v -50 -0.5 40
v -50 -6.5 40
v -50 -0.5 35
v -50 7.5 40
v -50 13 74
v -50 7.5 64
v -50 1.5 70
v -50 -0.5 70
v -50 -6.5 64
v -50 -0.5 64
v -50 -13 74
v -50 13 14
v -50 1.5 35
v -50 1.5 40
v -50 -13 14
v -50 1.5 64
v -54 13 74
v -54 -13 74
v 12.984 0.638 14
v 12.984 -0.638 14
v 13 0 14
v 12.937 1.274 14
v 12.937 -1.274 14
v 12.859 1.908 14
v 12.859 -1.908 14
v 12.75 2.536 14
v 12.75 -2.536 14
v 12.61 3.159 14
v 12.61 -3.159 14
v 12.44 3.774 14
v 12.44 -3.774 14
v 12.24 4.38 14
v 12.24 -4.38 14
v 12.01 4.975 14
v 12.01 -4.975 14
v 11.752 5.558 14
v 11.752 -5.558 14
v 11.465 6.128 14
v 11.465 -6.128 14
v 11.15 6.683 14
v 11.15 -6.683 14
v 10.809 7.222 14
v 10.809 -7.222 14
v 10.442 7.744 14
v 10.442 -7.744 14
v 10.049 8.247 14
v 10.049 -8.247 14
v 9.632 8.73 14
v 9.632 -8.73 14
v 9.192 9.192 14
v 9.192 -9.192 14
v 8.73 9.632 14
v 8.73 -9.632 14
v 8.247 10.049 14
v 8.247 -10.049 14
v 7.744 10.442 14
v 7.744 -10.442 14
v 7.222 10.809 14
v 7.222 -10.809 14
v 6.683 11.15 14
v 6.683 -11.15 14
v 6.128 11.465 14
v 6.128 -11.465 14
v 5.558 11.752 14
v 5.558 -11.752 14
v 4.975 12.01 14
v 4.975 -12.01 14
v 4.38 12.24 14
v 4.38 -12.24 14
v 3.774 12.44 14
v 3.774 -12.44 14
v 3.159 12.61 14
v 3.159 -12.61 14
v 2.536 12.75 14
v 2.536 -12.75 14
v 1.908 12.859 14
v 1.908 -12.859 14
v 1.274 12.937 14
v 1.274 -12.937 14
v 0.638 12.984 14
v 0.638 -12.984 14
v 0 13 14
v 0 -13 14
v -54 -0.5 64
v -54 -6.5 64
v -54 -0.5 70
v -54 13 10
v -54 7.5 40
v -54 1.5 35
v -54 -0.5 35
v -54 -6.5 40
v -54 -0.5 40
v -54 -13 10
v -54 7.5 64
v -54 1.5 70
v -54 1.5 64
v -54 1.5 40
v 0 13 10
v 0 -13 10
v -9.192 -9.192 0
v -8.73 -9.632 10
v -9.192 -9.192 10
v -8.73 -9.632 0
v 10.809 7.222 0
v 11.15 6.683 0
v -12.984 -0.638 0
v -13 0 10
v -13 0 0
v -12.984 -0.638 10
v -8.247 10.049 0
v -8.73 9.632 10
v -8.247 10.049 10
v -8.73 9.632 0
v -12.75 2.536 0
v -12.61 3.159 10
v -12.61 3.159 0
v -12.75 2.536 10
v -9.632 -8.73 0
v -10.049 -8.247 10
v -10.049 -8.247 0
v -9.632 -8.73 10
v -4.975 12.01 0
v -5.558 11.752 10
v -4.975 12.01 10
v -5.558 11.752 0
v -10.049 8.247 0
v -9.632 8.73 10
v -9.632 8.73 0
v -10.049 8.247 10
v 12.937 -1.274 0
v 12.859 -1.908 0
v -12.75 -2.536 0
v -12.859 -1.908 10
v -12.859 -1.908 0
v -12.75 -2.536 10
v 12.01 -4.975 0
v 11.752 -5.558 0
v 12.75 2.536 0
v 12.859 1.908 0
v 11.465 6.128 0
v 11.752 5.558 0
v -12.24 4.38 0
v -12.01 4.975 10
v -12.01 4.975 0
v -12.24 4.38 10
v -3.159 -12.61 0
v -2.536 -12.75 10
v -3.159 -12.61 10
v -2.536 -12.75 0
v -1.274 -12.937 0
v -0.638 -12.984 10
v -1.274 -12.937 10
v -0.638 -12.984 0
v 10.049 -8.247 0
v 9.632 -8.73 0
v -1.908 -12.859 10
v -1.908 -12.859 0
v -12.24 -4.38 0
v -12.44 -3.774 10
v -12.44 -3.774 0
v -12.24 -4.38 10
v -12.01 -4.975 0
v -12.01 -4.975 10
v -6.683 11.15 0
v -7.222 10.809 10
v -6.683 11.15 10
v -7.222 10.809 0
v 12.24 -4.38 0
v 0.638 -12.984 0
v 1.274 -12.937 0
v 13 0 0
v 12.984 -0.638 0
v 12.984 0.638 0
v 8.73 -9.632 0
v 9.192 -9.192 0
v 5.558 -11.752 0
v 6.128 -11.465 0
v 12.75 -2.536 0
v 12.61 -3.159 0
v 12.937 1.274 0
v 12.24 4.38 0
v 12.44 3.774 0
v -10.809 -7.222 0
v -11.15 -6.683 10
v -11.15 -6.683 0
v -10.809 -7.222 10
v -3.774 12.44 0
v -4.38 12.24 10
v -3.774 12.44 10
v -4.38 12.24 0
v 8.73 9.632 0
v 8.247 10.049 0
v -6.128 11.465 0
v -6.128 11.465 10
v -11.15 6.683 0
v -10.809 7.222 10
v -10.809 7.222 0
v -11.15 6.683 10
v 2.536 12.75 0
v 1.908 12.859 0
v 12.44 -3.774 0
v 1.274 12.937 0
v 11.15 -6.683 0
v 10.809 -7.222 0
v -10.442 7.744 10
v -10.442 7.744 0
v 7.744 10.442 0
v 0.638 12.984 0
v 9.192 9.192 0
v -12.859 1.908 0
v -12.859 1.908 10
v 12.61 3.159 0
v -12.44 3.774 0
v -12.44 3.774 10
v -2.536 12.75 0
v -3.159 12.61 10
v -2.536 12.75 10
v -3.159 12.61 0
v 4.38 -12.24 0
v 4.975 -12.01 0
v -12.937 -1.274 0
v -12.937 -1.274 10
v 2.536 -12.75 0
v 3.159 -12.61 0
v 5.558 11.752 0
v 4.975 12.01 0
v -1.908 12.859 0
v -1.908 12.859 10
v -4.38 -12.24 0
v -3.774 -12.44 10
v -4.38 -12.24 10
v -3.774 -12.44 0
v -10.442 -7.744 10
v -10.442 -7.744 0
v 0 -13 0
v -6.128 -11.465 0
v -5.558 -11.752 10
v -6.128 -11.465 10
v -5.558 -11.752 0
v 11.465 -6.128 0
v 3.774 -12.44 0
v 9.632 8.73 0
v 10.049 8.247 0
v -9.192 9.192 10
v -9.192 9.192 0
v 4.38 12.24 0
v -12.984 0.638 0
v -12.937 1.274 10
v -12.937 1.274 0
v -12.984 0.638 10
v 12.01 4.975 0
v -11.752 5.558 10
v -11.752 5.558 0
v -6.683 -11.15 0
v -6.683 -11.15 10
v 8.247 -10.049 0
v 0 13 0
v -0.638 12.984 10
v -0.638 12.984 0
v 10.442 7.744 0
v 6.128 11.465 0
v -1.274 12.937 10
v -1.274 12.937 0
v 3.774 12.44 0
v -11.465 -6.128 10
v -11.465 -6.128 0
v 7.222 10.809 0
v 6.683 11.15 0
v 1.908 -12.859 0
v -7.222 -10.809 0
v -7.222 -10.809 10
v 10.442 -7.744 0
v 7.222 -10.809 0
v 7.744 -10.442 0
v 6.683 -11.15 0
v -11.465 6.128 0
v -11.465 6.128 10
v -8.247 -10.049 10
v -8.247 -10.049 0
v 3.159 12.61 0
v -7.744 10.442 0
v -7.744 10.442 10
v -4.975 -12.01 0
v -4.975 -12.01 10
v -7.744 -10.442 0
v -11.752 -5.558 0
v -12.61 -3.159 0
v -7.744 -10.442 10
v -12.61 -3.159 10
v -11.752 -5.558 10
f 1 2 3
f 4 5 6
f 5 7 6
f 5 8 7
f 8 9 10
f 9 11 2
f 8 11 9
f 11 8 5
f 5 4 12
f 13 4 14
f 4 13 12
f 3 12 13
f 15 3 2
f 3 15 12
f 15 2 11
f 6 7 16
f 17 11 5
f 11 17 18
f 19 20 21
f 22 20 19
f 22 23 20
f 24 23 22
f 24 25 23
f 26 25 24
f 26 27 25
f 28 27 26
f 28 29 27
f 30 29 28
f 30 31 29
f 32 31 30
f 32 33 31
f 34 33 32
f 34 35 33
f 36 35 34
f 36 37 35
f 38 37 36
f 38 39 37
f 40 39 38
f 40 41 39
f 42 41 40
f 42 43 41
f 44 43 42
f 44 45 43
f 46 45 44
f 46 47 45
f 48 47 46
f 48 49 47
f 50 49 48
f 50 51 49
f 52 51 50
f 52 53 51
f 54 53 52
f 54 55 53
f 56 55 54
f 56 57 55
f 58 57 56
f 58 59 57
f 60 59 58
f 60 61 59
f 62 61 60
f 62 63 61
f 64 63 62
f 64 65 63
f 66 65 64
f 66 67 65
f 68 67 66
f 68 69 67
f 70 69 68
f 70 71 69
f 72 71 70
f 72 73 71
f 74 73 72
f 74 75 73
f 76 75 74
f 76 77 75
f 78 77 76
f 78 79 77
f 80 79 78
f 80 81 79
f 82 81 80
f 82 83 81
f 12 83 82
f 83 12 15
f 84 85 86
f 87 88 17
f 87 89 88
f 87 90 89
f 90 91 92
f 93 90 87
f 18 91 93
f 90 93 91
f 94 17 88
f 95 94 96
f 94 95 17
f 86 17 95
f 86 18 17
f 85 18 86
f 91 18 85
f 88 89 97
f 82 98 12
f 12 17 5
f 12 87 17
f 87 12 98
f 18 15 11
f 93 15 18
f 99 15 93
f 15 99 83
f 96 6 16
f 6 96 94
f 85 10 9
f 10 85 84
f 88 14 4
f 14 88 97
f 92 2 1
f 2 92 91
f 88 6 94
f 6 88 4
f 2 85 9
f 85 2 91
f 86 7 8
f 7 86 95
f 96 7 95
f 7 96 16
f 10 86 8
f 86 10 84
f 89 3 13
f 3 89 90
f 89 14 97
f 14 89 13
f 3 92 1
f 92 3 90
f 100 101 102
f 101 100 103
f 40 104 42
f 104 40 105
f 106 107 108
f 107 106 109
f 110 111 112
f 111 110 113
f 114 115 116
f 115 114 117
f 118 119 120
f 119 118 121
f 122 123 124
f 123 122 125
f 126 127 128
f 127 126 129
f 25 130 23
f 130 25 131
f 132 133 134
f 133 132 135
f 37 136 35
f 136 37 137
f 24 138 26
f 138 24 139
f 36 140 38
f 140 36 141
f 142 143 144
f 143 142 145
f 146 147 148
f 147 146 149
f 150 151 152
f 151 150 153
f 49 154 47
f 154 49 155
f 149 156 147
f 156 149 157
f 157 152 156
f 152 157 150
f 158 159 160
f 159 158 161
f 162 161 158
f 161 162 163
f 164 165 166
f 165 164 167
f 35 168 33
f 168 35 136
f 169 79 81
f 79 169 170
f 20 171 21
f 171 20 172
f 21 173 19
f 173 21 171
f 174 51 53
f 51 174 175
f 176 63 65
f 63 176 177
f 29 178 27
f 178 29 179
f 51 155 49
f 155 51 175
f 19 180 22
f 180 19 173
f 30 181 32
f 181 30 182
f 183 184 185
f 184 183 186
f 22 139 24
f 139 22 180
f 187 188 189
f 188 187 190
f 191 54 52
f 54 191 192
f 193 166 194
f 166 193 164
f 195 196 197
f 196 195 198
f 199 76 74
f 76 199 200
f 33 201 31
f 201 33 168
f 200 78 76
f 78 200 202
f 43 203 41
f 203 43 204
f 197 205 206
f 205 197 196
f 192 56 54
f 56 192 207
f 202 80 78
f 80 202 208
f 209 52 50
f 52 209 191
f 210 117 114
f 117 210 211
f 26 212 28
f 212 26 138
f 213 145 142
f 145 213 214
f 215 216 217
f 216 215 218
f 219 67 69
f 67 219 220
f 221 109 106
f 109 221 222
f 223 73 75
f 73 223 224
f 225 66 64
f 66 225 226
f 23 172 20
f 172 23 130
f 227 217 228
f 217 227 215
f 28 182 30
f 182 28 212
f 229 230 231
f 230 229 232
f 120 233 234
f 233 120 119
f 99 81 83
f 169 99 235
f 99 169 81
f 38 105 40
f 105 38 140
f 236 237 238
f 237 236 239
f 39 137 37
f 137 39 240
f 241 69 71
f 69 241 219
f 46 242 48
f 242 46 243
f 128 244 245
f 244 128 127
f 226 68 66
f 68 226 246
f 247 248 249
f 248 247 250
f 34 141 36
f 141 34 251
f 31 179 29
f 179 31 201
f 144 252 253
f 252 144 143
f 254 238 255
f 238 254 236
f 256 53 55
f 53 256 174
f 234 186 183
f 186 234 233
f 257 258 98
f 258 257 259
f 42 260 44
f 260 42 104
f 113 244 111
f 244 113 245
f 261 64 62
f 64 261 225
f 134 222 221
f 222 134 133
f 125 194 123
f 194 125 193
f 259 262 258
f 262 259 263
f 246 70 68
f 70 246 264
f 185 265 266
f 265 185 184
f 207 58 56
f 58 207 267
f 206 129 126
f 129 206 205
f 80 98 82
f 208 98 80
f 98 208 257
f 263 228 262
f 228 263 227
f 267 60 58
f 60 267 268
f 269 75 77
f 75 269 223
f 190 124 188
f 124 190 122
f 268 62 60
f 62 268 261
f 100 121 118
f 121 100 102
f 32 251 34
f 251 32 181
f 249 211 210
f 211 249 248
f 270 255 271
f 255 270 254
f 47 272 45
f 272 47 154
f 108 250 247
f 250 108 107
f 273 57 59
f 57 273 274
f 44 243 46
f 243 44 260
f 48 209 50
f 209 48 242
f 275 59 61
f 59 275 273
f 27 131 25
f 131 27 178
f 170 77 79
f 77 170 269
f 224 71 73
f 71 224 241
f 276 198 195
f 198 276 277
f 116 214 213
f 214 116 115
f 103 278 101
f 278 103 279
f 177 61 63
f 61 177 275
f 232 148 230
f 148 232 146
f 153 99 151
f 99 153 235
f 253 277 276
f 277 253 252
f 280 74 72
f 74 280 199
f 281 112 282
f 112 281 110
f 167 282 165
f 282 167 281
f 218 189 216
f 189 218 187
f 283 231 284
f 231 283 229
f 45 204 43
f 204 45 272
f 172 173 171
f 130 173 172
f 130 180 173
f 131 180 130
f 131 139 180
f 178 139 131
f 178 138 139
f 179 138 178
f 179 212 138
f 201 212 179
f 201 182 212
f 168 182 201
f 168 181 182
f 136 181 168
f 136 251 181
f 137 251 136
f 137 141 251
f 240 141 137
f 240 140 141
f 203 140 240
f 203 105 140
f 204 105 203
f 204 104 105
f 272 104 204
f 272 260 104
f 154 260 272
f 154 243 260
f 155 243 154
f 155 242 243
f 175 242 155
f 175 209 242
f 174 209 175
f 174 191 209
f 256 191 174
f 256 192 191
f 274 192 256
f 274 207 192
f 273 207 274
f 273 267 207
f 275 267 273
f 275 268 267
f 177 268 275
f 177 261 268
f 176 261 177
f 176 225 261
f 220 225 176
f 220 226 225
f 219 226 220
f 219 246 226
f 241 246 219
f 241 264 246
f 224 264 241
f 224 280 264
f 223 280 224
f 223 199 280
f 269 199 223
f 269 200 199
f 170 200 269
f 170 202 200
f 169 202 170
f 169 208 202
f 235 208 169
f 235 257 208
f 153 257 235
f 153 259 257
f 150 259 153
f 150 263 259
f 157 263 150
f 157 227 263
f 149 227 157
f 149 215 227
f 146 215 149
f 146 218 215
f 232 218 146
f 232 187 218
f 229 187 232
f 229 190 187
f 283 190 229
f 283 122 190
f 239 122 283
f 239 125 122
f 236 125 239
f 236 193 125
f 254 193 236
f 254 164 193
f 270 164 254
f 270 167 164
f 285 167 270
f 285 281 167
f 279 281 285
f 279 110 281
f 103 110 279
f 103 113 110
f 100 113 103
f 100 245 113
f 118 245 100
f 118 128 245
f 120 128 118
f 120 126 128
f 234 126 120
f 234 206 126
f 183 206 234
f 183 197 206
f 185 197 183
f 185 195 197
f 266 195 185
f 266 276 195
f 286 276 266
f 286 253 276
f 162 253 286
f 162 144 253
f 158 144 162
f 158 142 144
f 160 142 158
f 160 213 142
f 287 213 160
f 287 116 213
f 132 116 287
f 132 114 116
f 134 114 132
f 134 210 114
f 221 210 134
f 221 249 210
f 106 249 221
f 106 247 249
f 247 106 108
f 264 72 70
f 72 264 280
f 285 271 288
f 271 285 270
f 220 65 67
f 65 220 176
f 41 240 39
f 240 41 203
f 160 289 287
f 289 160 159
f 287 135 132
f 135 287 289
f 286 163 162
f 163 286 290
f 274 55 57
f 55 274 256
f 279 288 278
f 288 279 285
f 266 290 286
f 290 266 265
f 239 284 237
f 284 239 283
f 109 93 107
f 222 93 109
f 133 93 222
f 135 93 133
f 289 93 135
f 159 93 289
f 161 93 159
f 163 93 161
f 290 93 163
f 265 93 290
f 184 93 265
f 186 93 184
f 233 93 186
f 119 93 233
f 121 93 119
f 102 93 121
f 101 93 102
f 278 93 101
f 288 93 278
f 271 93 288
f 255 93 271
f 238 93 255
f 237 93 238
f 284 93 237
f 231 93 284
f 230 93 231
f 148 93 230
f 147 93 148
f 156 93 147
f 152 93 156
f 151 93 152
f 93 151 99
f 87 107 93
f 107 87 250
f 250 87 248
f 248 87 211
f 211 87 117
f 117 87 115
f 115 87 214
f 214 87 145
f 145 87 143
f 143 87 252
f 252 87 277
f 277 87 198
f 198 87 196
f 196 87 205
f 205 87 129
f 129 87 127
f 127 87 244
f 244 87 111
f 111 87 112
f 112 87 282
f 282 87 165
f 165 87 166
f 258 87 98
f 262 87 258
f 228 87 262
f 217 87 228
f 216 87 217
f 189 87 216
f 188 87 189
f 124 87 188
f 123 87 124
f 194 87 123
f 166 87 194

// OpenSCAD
$fn = 128;

cylinder_height = 14;
cylinder_diameter = 27-1;

rec1_x_len = 25+29;
rec1_y_len = cylinder_diameter;
rec1_thickness = 4;

rec2_thickness = 4;
rec2_h = 60;
rec2_w = cylinder_diameter;

servo_hole_h = 24;
servo_hole_w = 14;

little_hole_w = 2;
little_hole_h = 5;

union()
{
    cylinder(h = cylinder_height, r1 = cylinder_diameter/2, r2 = cylinder_diameter/2, center = false);

    /*Rec1*/
    translate([-rec1_x_len,-rec1_y_len/2, cylinder_height-rec1_thickness])
        cube(size=[rec1_x_len,rec1_y_len,rec1_thickness], center=false);

    difference()
    {
        /*Rec2*/
        translate([-rec1_x_len,-rec1_y_len/2,cylinder_height])
        cube(size=[rec2_thickness,rec2_w,rec2_h], center=false);

        /*Servo hole*/
        translate([-rec1_x_len-1,-cylinder_diameter/2 + 6.5, cylinder_height+rec2_h-servo_hole_h-10])
        cube(size=[rec2_thickness+2,servo_hole_w,servo_hole_h], center=false);

        /*Top little hole*/
        translate([-rec1_x_len-1,-cylinder_diameter/2 + 6.5, cylinder_height+rec2_h-servo_hole_h-10])
        translate([-1, servo_hole_w/2 - little_hole_w/2, servo_hole_h-1])
        cube(size=[7, little_hole_w, little_hole_h+2], center=false);

        /*Bottom little hole*/
        translate([-rec1_x_len-1,-cylinder_diameter/2 + 6.5, cylinder_height+rec2_h-servo_hole_h-10])
        translate([-1, servo_hole_w/2 - little_hole_w/2, -5])
        cube(size=[7, little_hole_w, little_hole_h+2], center=false);
    }
}
